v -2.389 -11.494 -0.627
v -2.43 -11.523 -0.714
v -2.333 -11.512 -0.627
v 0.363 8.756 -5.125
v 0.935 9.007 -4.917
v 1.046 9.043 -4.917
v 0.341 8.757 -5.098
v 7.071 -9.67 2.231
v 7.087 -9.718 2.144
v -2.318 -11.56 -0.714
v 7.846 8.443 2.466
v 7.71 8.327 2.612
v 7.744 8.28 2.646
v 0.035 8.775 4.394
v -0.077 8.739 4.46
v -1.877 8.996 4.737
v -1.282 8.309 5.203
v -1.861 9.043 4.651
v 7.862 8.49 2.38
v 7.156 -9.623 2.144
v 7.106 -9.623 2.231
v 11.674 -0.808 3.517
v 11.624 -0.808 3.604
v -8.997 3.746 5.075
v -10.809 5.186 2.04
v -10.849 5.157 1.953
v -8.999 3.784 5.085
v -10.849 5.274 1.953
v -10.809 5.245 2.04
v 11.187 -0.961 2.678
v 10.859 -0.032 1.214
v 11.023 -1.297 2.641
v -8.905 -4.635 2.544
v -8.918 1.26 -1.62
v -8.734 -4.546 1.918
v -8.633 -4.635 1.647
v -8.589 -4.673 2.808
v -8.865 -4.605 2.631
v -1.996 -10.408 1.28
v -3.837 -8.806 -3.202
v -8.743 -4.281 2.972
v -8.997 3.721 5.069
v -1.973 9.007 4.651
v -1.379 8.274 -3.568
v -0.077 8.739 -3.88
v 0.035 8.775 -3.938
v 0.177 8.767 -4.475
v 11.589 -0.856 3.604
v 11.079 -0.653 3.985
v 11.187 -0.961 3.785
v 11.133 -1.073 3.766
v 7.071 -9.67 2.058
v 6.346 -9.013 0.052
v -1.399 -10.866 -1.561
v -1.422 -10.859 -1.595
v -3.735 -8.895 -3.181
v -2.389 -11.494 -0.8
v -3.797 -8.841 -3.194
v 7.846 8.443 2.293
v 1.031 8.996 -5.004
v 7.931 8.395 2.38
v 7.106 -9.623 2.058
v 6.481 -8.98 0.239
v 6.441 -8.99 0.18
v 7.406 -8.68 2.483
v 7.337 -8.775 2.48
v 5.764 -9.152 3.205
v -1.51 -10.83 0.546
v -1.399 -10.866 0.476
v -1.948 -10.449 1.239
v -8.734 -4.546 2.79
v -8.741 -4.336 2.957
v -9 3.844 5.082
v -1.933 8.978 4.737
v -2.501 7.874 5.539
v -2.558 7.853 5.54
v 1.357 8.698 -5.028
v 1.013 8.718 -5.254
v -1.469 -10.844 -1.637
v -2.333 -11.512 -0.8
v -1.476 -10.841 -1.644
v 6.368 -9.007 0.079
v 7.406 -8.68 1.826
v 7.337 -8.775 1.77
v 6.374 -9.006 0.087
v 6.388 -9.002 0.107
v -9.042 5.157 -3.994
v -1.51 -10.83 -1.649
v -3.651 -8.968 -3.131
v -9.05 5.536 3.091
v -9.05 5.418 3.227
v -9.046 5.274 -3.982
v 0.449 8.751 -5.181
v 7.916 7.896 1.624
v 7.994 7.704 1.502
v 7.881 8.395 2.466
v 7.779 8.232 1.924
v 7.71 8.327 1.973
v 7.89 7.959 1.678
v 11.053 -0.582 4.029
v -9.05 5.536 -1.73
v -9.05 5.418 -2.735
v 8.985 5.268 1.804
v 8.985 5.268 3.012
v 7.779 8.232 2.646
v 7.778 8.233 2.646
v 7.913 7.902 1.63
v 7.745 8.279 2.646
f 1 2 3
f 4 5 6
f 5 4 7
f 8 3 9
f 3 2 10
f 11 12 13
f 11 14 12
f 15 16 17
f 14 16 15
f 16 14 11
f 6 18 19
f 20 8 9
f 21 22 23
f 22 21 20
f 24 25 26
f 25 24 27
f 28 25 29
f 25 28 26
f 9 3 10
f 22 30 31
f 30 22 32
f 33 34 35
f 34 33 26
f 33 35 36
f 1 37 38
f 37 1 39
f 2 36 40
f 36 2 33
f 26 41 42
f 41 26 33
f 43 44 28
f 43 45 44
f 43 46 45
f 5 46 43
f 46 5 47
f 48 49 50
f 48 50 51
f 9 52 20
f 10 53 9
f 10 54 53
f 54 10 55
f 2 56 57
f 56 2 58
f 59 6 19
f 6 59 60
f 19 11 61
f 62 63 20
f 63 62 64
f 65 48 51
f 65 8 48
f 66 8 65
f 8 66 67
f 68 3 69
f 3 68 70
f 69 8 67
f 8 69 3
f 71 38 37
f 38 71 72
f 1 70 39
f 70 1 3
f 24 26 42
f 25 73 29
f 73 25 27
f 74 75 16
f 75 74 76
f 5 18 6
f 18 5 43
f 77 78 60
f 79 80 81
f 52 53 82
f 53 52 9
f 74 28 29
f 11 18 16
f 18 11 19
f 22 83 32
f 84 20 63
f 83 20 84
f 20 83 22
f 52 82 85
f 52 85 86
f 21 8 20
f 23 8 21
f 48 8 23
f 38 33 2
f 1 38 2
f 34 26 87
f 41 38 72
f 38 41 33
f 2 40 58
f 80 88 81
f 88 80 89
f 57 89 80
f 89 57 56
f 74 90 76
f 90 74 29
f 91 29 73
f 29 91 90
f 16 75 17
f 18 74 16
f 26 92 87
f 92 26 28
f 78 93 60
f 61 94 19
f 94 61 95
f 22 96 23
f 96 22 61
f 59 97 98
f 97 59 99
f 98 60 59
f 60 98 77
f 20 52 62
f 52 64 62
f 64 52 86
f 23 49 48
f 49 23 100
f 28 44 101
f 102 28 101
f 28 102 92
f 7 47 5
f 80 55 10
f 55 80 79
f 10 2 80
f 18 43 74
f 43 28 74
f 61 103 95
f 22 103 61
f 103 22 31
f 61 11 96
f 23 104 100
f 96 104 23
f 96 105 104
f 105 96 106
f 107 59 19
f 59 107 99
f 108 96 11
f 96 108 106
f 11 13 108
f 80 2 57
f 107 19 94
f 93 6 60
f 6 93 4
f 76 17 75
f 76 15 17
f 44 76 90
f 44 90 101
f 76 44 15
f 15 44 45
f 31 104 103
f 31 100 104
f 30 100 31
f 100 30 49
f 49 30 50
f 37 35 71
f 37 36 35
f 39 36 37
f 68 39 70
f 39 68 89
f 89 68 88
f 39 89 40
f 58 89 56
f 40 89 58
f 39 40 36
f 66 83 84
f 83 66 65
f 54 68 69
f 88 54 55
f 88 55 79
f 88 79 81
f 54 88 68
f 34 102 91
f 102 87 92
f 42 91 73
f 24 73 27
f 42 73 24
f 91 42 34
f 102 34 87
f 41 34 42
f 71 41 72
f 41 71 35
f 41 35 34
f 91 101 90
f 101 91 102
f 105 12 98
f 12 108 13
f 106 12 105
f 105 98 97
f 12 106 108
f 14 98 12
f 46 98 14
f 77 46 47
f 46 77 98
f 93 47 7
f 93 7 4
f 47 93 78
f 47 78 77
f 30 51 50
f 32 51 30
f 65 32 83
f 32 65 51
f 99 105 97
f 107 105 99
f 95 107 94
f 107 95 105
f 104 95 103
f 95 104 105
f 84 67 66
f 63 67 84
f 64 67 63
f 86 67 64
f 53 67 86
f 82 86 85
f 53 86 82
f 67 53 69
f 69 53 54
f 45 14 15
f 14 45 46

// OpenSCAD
// Auto-generated OpenSCAD file

    inner_points = 10*[[0.6535941979567257, -0.8423780651967159, 0.4034791044417876], [-0.45475527077662015, 0.12173810180083354, 0.8462002987147633], [1.1087469983058469, -0.09610029003660843, -0.0822218432991377], [0.00039752957250104026, 0.868015876960941, 0.360499350973838], [-0.14294424118494742, -1.0771335563343367, -0.15367112157493162], [-0.8653432213136825, -0.44874282271436344, 0.13488528436594405], [0.5553795083440791, 0.06785224566500801, -0.8988637397815697], [-0.16701947178465576, 0.6962429792849811, -0.610307333840694], [0.43334931670482335, -0.2194919314996312, 1.1541488432285814], [0.8885021170539444, 0.5267858436604762, 0.6684478954876559], [-0.12771221953520462, -0.6454687055329743, -1.0555765723285564], [-0.8501111996639396, -0.017077971913001103, -0.7670201663876808], [-0.2575336137198885, -0.8581337755119616, 0.8153017220599147], [0.7679103041582885, 0.8232048980029523, -0.2789661422409663], [0.7305959386426744, -0.8680335150915568, -0.5932217181835514], [-0.896944614521451, 0.5477096273154356, 0.05688613836460294]];

    outer_points = 10*[[-0.18922208692498615, 0.89482467771394, 0.46507464775708884], [-0.8824363020490245, -0.45759366314983685, 0.25441077470036644], [0.10154238982675173, 0.89482467771394, -0.4917200110173464], [-0.5916718252972866, -0.45759366314983685, -0.7023838840740688], [0.3933037355504648, 0.22212347338616487, 0.9212947216745572], [-0.05851877724295007, -0.6593544879502681, 0.7839884195205397], [0.8394126894652227, 0.22212347338616487, -0.5466791832035597], [0.38759017667180784, -0.6593544879502681, -0.6839854853575772], [-1.0768579152163809, 0.5215433861787323, 0.19532714781824523], [-0.7860934384646431, 0.5215433861787323, -0.76146751095619], [1.1573869332372195, -0.08080440551051582, 0.35172333264598116], [0.7055644204438046, -0.9622823668469488, 0.21441703049196367], [-0.6016466494277248, 0.15347458298643346, 0.9945139901674744], [0.053435916232416114, 0.15347458298643346, -1.161112126481694], [0.7830758127303129, 0.8394954849805947, 0.23797230352134466], [-0.23486507953500407, -1.1464446509534616, -0.07137416720712511]];

    // Convex hull for inner set (I)
    module inner_hull() {
        hull() {
            for (p = inner_points) {
                translate(p) sphere(r=0.1);
            }
        }
    }

    // Convex hull for outer set (O) minus inner hull (O \ I)
    module outer_minus_inner() {
        difference() {
            hull() {
                for (p = outer_points) {
                    translate(p) sphere(r=0.1);
                }
            }
            inner_hull(); // Subtract inner hull
        }
    }

    // Convex hull for outer set (O) minus all translated inner hulls
    module outer_minus_AllTranslationInner() {
        difference() {
            hull() {
                for (p = outer_points) {
                    translate(p) sphere(r=0.1);
                }
            }
            hull() {
                translate([0,0,50]) inner_hull();
                translate([0,0,-50]) inner_hull();
            }; // Subtract translated inner hulls
        }
    }

    // Difference between outer_minus_inner and outer_minus_AllTranslationInner
    module outer_minus_inner_diff() {
        difference() {
            // Outer minus inner
            difference() {
                hull() {
                    for (p = outer_points) {
                        translate(p) sphere(r=0.1);
                    }
                }
                inner_hull();
            }

            // Subtract Outer minus AllTranslationInner
            difference() {
                hull() {
                    for (p = outer_points) {
                        translate(p) sphere(r=0.1);
                    }
                }
                hull() {
                    translate([0,0,50]) inner_hull();
                    translate([0,0,-50]) inner_hull();
                };
            }
        }
    }

    // Rendering all with colors applied
    color([0, 1, 0, 1]) outer_minus_AllTranslationInner(); // Opaque green
    
